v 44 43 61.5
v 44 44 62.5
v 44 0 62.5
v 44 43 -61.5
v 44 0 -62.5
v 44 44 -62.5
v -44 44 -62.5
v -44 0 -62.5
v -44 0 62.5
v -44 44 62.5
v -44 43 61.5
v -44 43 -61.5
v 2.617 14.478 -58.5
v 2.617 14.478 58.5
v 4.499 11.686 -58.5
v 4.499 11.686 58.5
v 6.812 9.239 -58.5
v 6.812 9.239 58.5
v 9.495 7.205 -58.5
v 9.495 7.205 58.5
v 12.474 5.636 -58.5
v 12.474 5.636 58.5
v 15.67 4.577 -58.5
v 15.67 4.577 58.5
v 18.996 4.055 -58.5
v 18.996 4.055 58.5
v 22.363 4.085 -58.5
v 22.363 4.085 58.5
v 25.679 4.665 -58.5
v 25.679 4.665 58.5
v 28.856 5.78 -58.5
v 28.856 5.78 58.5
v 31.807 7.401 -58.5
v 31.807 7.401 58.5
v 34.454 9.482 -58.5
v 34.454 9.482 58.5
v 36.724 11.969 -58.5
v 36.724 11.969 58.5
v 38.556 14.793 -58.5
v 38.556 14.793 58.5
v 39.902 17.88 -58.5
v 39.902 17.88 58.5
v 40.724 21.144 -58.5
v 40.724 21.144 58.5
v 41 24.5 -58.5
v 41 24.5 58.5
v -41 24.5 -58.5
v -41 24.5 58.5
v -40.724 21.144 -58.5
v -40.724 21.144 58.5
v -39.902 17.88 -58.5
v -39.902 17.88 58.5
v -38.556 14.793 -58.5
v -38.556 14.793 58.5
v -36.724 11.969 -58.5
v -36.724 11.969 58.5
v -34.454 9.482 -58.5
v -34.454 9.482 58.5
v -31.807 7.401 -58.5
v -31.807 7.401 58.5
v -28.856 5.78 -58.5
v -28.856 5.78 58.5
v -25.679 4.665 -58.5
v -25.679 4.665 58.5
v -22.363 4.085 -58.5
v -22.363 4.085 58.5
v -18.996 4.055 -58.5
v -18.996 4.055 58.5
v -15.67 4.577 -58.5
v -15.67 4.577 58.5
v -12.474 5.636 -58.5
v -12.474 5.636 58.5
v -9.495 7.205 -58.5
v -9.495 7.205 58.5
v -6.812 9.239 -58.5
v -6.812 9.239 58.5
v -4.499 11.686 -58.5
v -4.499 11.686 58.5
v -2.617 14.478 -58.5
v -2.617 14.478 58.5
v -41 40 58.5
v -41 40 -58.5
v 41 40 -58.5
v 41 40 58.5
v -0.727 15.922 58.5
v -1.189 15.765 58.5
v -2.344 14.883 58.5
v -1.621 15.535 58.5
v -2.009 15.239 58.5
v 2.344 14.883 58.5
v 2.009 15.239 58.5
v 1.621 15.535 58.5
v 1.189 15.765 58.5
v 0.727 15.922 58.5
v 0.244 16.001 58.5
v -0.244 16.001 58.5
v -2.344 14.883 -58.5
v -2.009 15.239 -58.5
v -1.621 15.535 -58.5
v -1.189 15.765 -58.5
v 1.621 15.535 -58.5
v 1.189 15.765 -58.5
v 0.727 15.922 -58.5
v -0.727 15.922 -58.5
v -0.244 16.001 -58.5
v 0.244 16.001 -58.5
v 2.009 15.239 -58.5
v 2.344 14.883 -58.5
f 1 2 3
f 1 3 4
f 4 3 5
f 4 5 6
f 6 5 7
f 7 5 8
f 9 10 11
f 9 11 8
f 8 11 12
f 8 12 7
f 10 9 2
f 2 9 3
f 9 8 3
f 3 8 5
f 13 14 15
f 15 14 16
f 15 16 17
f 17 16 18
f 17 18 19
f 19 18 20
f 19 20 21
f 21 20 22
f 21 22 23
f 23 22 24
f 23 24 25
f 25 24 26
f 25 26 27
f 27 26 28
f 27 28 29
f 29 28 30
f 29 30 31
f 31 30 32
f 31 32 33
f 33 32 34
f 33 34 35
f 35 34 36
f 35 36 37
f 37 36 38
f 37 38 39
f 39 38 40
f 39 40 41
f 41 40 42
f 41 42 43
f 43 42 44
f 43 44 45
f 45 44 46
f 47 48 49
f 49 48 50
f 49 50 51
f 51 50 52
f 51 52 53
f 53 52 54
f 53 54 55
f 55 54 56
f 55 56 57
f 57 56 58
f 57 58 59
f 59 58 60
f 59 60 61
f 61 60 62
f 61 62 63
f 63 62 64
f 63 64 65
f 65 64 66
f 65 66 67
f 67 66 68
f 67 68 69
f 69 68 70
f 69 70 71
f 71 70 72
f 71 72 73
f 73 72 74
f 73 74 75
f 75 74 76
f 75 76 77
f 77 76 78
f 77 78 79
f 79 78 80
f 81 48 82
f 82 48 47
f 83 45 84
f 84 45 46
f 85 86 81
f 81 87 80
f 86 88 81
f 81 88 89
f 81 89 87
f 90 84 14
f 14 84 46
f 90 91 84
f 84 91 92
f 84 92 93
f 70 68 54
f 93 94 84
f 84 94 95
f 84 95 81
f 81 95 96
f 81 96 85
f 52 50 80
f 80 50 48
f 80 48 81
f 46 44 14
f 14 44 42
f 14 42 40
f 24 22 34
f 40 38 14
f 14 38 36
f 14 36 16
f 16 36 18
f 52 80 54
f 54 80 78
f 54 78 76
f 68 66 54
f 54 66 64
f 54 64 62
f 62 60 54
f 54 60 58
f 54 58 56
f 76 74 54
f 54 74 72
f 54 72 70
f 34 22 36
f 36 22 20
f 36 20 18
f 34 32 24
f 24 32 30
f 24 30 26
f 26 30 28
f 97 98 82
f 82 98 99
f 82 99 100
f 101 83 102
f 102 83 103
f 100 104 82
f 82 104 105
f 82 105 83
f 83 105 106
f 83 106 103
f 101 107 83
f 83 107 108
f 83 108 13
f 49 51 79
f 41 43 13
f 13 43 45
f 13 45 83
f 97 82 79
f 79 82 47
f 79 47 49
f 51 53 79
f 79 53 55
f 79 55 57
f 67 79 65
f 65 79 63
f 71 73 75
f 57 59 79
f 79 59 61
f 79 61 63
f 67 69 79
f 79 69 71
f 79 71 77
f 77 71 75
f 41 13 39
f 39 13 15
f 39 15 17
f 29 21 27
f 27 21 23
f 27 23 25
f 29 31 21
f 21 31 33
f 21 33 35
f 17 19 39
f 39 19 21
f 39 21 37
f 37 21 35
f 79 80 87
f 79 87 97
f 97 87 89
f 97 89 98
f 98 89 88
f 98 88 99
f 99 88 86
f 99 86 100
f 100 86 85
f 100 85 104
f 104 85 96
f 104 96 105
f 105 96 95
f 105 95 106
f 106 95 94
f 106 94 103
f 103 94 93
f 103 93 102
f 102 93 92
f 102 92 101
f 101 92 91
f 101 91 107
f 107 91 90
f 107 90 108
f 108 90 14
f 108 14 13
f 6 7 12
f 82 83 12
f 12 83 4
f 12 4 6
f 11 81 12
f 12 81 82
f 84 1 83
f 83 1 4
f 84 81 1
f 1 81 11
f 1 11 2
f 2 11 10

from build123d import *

# Parameters (mm, degrees)
SKETCH1_W           = 88
SKETCH1_H           = 125
BOSS_EXTRUDE1_DEPTH = 50
CUT_EXTRUDE1_DEPTH  = 117
FILLET1_R           = 3


with BuildPart() as part:
    # Sketch1 → Boss-Extrude1 (new body)
    with BuildSketch(Plane(origin=(0, 0, 0), x_dir=(1, 0, 0), z_dir=(0, 1, 0))):
        Rectangle(SKETCH1_W, SKETCH1_H)
    extrude(amount=BOSS_EXTRUDE1_DEPTH)

    # Sketch2 → Cut-Extrude1 (cut)
    with BuildSketch(Plane.XY.offset(58.5)):
        with BuildLine():
            Line((-41, 24.5), (-41, 66.5))
            Line((-41, 66.5), (41, 66.5))
            Line((41, 66.5), (41, 24.5))
            ThreePointArc((41, 24.5), (20.5, 4), (0, 24.5))
            ThreePointArc((0, 24.5), (-20.5, 4), (-41, 24.5))
        make_face()
    extrude(amount=-CUT_EXTRUDE1_DEPTH, mode=Mode.SUBTRACT)

    # Fillet1
    fillet1_edges = [part.edges().sort_by_distance(p)[0] for p in [
        (0, 24.5, 0),
    ]]
    fillet(fillet1_edges, radius=FILLET1_R)

    # Chamfer1
    # the kernel refuses this chamfer: 10 mm, written as the material it takes off along each edge
    with BuildSketch(Plane(origin=(-41, 50, 58.5), x_dir=(0, 0.027495876610586337, 0.9996219169112968), z_dir=(1, 0, 0)), Plane(origin=(-41, 50, -58.5), x_dir=(0, -0.9996219169112968, 0.027495876610586317), z_dir=(1, 0, 0))) as chamfer1_piece_1:
        with BuildLine():
            Line((10.286731952, 0), (-0.565471549, 10.271177935))
            Line((-0.565471549, 10.271177935), (-0.765395932, 10.26567876))
            ThreePointArc((-0.765395932, 10.26567876), (-0.341292271, 5.133978296), (-0.199924383, -0.005499175))
            Line((-0.199924383, -0.005499175), (0.005499175, -0.199924383))
            ThreePointArc((0.005499175, -0.199924383), (5.144976647, -0.058556496), (10.292231127, -0.199924383))
            Line((10.292231127, -0.199924383), (10.286731952, 0))
        make_face()
    extrude(amount=82, mode=Mode.SUBTRACT)
    with BuildSketch(Plane(origin=(41, 50, 58.5), x_dir=(0.9996219169112968, 0.027495876610586317, 0), z_dir=(0, 0, -1))) as chamfer1_piece_2:
        with BuildLine():
            Line((10.286731952, 0), (-0.565471549, 10.271177935))
            Line((-0.565471549, 10.271177935), (-0.765395932, 10.26567876))
            ThreePointArc((-0.765395932, 10.26567876), (-0.341292271, 5.133978296), (-0.199924383, -0.005499175))
            Line((-0.199924383, -0.005499175), (0.005499175, -0.199924383))
            ThreePointArc((0.005499175, -0.199924383), (5.144976647, -0.058556496), (10.292231127, -0.199924383))
            Line((10.292231127, -0.199924383), (10.286731952, 0))
        make_face()
    extrude(amount=117, mode=Mode.SUBTRACT)
    with BuildSketch(Plane(origin=(-41, 50, -58.5), x_dir=(0.027495876610586317, -0.9996219169112968, 0), z_dir=(0, 0, 1))) as chamfer1_piece_3:
        with BuildLine():
            Line((10.286731952, 0), (-0.565471549, -10.271177935))
            Line((-0.565471549, -10.271177935), (-0.765395932, -10.26567876))
            ThreePointArc((-0.765395932, -10.26567876), (-0.341292271, -5.133978296), (-0.199924383, 0.005499175))
            Line((-0.199924383, 0.005499175), (0.005499175, 0.199924383))
            ThreePointArc((0.005499175, 0.199924383), (5.144976647, 0.058556496), (10.292231127, 0.199924383))
            Line((10.292231127, 0.199924383), (10.286731952, 0))
        make_face()
    extrude(amount=117, mode=Mode.SUBTRACT)
    with BuildSketch(Plane(origin=(-41, 50, -58.5), x_dir=(0.027495876610586317, -0.9996219169112968, 0), z_dir=(0, 0, 1))) as chamfer1_piece_4a_section:
        with BuildLine():
            Line((10.286731952, 0), (-0.565471549, -10.271177935))
            Line((-0.565471549, -10.271177935), (-0.765395932, -10.26567876))
            ThreePointArc((-0.765395932, -10.26567876), (-0.341292271, -5.133978296), (-0.199924383, 0.005499175))
            Line((-0.199924383, 0.005499175), (0.005499175, 0.199924383))
            ThreePointArc((0.005499175, 0.199924383), (5.144976647, 0.058556496), (10.292231127, 0.199924383))
            Line((10.292231127, 0.199924383), (10.286731952, 0))
        make_face()
    chamfer1_piece_4a = extrude(amount=142.71682988, mode=Mode.PRIVATE)
    chamfer1_piece_4a = split(chamfer1_piece_4a, bisect_by=Plane(origin=(-44.297936268, 46.702063732, 58.5), z_dir=(0, 0, 1)), keep=Keep.TOP, mode=Mode.PRIVATE)
    with BuildSketch(Plane(origin=(-66.71682988, 50, 58.5), x_dir=(0, 0.027495876610586337, 0.9996219169112968), z_dir=(1, 0, 0))) as chamfer1_piece_4b_section:
        with BuildLine():
            Line((10.286731952, 0), (-0.565471549, 10.271177935))
            Line((-0.565471549, 10.271177935), (-0.765395932, 10.26567876))
            ThreePointArc((-0.765395932, 10.26567876), (-0.341292271, 5.133978296), (-0.199924383, -0.005499175))
            Line((-0.199924383, -0.005499175), (0.005499175, -0.199924383))
            ThreePointArc((0.005499175, -0.199924383), (5.144976647, -0.058556496), (10.292231127, -0.199924383))
            Line((10.292231127, -0.199924383), (10.286731952, 0))
        make_face()
    chamfer1_piece_4b = extrude(amount=107.71682988, mode=Mode.PRIVATE)
    chamfer1_piece_4b = split(chamfer1_piece_4b, bisect_by=Plane(origin=(-41, 46.702063732, 61.797936268), z_dir=(-1, 0, 0)), keep=Keep.TOP, mode=Mode.PRIVATE)
    chamfer1_piece_4 = chamfer1_piece_4a & chamfer1_piece_4b
    add(chamfer1_piece_4, mode=Mode.SUBTRACT)
    with BuildSketch(Plane(origin=(41, 50, 84.21682988), x_dir=(0.9996219169112968, 0.027495876610586317, 0), z_dir=(0, 0, -1))) as chamfer1_piece_5a_section:
        with BuildLine():
            Line((10.286731952, 0), (-0.565471549, 10.271177935))
            Line((-0.565471549, 10.271177935), (-0.765395932, 10.26567876))
            ThreePointArc((-0.765395932, 10.26567876), (-0.341292271, 5.133978296), (-0.199924383, -0.005499175))
            Line((-0.199924383, -0.005499175), (0.005499175, -0.199924383))
            ThreePointArc((0.005499175, -0.199924383), (5.144976647, -0.058556496), (10.292231127, -0.199924383))
            Line((10.292231127, -0.199924383), (10.286731952, 0))
        make_face()
    chamfer1_piece_5a = extrude(amount=142.71682988, mode=Mode.PRIVATE)
    chamfer1_piece_5a = split(chamfer1_piece_5a, bisect_by=Plane(origin=(44.297936268, 46.702063732, 58.5), z_dir=(0, 0, 1)), keep=Keep.TOP, mode=Mode.PRIVATE)
    with BuildSketch(Plane(origin=(-41, 50, 58.5), x_dir=(0, 0.027495876610586337, 0.9996219169112968), z_dir=(1, 0, 0))) as chamfer1_piece_5b_section:
        with BuildLine():
            Line((10.286731952, 0), (-0.565471549, 10.271177935))
            Line((-0.565471549, 10.271177935), (-0.765395932, 10.26567876))
            ThreePointArc((-0.765395932, 10.26567876), (-0.341292271, 5.133978296), (-0.199924383, -0.005499175))
            Line((-0.199924383, -0.005499175), (0.005499175, -0.199924383))
            ThreePointArc((0.005499175, -0.199924383), (5.144976647, -0.058556496), (10.292231127, -0.199924383))
            Line((10.292231127, -0.199924383), (10.286731952, 0))
        make_face()
    chamfer1_piece_5b = extrude(amount=107.71682988, mode=Mode.PRIVATE)
    chamfer1_piece_5b = split(chamfer1_piece_5b, bisect_by=Plane(origin=(41, 46.702063732, 61.797936268), z_dir=(1, 0, 0)), keep=Keep.TOP, mode=Mode.PRIVATE)
    chamfer1_piece_5 = chamfer1_piece_5a & chamfer1_piece_5b
    add(chamfer1_piece_5, mode=Mode.SUBTRACT)
    with BuildSketch(Plane(origin=(-41, 50, -58.5), x_dir=(0, -0.9996219169112968, 0.027495876610586317), z_dir=(1, 0, 0))) as chamfer1_piece_6a_section:
        with BuildLine():
            Line((10.286731952, 0), (-0.565471549, 10.271177935))
            Line((-0.565471549, 10.271177935), (-0.765395932, 10.26567876))
            ThreePointArc((-0.765395932, 10.26567876), (-0.341292271, 5.133978296), (-0.199924383, -0.005499175))
            Line((-0.199924383, -0.005499175), (0.005499175, -0.199924383))
            ThreePointArc((0.005499175, -0.199924383), (5.144976647, -0.058556496), (10.292231127, -0.199924383))
            Line((10.292231127, -0.199924383), (10.286731952, 0))
        make_face()
    chamfer1_piece_6a = extrude(amount=107.71682988, mode=Mode.PRIVATE)
    chamfer1_piece_6a = split(chamfer1_piece_6a, bisect_by=Plane(origin=(41, 46.702063732, -61.797936268), z_dir=(1, 0, 0)), keep=Keep.TOP, mode=Mode.PRIVATE)
    with BuildSketch(Plane(origin=(41, 50, 58.5), x_dir=(0.9996219169112968, 0.027495876610586317, 0), z_dir=(0, 0, -1))) as chamfer1_piece_6b_section:
        with BuildLine():
            Line((10.286731952, 0), (-0.565471549, 10.271177935))
            Line((-0.565471549, 10.271177935), (-0.765395932, 10.26567876))
            ThreePointArc((-0.765395932, 10.26567876), (-0.341292271, 5.133978296), (-0.199924383, -0.005499175))
            Line((-0.199924383, -0.005499175), (0.005499175, -0.199924383))
            ThreePointArc((0.005499175, -0.199924383), (5.144976647, -0.058556496), (10.292231127, -0.199924383))
            Line((10.292231127, -0.199924383), (10.286731952, 0))
        make_face()
    chamfer1_piece_6b = extrude(amount=142.71682988, mode=Mode.PRIVATE)
    chamfer1_piece_6b = split(chamfer1_piece_6b, bisect_by=Plane(origin=(44.297936268, 46.702063732, -58.5), z_dir=(0, 0, -1)), keep=Keep.TOP, mode=Mode.PRIVATE)
    chamfer1_piece_6 = chamfer1_piece_6a & chamfer1_piece_6b
    add(chamfer1_piece_6, mode=Mode.SUBTRACT)
    with BuildSketch(Plane(origin=(-66.71682988, 50, -58.5), x_dir=(0, -0.9996219169112968, 0.027495876610586317), z_dir=(1, 0, 0))) as chamfer1_piece_7a_section:
        with BuildLine():
            Line((10.286731952, 0), (-0.565471549, 10.271177935))
            Line((-0.565471549, 10.271177935), (-0.765395932, 10.26567876))
            ThreePointArc((-0.765395932, 10.26567876), (-0.341292271, 5.133978296), (-0.199924383, -0.005499175))
            Line((-0.199924383, -0.005499175), (0.005499175, -0.199924383))
            ThreePointArc((0.005499175, -0.199924383), (5.144976647, -0.058556496), (10.292231127, -0.199924383))
            Line((10.292231127, -0.199924383), (10.286731952, 0))
        make_face()
    chamfer1_piece_7a = extrude(amount=107.71682988, mode=Mode.PRIVATE)
    chamfer1_piece_7a = split(chamfer1_piece_7a, bisect_by=Plane(origin=(-41, 46.702063732, -61.797936268), z_dir=(-1, 0, 0)), keep=Keep.TOP, mode=Mode.PRIVATE)
    with BuildSketch(Plane(origin=(-41, 50, -84.21682988), x_dir=(0.027495876610586317, -0.9996219169112968, 0), z_dir=(0, 0, 1))) as chamfer1_piece_7b_section:
        with BuildLine():
            Line((10.286731952, 0), (-0.565471549, -10.271177935))
            Line((-0.565471549, -10.271177935), (-0.765395932, -10.26567876))
            ThreePointArc((-0.765395932, -10.26567876), (-0.341292271, -5.133978296), (-0.199924383, 0.005499175))
            Line((-0.199924383, 0.005499175), (0.005499175, 0.199924383))
            ThreePointArc((0.005499175, 0.199924383), (5.144976647, 0.058556496), (10.292231127, 0.199924383))
            Line((10.292231127, 0.199924383), (10.286731952, 0))
        make_face()
    chamfer1_piece_7b = extrude(amount=142.71682988, mode=Mode.PRIVATE)
    chamfer1_piece_7b = split(chamfer1_piece_7b, bisect_by=Plane(origin=(-44.297936268, 46.702063732, -58.5), z_dir=(0, 0, -1)), keep=Keep.TOP, mode=Mode.PRIVATE)
    chamfer1_piece_7 = chamfer1_piece_7a & chamfer1_piece_7b
    add(chamfer1_piece_7, mode=Mode.SUBTRACT)


solid = part.part
